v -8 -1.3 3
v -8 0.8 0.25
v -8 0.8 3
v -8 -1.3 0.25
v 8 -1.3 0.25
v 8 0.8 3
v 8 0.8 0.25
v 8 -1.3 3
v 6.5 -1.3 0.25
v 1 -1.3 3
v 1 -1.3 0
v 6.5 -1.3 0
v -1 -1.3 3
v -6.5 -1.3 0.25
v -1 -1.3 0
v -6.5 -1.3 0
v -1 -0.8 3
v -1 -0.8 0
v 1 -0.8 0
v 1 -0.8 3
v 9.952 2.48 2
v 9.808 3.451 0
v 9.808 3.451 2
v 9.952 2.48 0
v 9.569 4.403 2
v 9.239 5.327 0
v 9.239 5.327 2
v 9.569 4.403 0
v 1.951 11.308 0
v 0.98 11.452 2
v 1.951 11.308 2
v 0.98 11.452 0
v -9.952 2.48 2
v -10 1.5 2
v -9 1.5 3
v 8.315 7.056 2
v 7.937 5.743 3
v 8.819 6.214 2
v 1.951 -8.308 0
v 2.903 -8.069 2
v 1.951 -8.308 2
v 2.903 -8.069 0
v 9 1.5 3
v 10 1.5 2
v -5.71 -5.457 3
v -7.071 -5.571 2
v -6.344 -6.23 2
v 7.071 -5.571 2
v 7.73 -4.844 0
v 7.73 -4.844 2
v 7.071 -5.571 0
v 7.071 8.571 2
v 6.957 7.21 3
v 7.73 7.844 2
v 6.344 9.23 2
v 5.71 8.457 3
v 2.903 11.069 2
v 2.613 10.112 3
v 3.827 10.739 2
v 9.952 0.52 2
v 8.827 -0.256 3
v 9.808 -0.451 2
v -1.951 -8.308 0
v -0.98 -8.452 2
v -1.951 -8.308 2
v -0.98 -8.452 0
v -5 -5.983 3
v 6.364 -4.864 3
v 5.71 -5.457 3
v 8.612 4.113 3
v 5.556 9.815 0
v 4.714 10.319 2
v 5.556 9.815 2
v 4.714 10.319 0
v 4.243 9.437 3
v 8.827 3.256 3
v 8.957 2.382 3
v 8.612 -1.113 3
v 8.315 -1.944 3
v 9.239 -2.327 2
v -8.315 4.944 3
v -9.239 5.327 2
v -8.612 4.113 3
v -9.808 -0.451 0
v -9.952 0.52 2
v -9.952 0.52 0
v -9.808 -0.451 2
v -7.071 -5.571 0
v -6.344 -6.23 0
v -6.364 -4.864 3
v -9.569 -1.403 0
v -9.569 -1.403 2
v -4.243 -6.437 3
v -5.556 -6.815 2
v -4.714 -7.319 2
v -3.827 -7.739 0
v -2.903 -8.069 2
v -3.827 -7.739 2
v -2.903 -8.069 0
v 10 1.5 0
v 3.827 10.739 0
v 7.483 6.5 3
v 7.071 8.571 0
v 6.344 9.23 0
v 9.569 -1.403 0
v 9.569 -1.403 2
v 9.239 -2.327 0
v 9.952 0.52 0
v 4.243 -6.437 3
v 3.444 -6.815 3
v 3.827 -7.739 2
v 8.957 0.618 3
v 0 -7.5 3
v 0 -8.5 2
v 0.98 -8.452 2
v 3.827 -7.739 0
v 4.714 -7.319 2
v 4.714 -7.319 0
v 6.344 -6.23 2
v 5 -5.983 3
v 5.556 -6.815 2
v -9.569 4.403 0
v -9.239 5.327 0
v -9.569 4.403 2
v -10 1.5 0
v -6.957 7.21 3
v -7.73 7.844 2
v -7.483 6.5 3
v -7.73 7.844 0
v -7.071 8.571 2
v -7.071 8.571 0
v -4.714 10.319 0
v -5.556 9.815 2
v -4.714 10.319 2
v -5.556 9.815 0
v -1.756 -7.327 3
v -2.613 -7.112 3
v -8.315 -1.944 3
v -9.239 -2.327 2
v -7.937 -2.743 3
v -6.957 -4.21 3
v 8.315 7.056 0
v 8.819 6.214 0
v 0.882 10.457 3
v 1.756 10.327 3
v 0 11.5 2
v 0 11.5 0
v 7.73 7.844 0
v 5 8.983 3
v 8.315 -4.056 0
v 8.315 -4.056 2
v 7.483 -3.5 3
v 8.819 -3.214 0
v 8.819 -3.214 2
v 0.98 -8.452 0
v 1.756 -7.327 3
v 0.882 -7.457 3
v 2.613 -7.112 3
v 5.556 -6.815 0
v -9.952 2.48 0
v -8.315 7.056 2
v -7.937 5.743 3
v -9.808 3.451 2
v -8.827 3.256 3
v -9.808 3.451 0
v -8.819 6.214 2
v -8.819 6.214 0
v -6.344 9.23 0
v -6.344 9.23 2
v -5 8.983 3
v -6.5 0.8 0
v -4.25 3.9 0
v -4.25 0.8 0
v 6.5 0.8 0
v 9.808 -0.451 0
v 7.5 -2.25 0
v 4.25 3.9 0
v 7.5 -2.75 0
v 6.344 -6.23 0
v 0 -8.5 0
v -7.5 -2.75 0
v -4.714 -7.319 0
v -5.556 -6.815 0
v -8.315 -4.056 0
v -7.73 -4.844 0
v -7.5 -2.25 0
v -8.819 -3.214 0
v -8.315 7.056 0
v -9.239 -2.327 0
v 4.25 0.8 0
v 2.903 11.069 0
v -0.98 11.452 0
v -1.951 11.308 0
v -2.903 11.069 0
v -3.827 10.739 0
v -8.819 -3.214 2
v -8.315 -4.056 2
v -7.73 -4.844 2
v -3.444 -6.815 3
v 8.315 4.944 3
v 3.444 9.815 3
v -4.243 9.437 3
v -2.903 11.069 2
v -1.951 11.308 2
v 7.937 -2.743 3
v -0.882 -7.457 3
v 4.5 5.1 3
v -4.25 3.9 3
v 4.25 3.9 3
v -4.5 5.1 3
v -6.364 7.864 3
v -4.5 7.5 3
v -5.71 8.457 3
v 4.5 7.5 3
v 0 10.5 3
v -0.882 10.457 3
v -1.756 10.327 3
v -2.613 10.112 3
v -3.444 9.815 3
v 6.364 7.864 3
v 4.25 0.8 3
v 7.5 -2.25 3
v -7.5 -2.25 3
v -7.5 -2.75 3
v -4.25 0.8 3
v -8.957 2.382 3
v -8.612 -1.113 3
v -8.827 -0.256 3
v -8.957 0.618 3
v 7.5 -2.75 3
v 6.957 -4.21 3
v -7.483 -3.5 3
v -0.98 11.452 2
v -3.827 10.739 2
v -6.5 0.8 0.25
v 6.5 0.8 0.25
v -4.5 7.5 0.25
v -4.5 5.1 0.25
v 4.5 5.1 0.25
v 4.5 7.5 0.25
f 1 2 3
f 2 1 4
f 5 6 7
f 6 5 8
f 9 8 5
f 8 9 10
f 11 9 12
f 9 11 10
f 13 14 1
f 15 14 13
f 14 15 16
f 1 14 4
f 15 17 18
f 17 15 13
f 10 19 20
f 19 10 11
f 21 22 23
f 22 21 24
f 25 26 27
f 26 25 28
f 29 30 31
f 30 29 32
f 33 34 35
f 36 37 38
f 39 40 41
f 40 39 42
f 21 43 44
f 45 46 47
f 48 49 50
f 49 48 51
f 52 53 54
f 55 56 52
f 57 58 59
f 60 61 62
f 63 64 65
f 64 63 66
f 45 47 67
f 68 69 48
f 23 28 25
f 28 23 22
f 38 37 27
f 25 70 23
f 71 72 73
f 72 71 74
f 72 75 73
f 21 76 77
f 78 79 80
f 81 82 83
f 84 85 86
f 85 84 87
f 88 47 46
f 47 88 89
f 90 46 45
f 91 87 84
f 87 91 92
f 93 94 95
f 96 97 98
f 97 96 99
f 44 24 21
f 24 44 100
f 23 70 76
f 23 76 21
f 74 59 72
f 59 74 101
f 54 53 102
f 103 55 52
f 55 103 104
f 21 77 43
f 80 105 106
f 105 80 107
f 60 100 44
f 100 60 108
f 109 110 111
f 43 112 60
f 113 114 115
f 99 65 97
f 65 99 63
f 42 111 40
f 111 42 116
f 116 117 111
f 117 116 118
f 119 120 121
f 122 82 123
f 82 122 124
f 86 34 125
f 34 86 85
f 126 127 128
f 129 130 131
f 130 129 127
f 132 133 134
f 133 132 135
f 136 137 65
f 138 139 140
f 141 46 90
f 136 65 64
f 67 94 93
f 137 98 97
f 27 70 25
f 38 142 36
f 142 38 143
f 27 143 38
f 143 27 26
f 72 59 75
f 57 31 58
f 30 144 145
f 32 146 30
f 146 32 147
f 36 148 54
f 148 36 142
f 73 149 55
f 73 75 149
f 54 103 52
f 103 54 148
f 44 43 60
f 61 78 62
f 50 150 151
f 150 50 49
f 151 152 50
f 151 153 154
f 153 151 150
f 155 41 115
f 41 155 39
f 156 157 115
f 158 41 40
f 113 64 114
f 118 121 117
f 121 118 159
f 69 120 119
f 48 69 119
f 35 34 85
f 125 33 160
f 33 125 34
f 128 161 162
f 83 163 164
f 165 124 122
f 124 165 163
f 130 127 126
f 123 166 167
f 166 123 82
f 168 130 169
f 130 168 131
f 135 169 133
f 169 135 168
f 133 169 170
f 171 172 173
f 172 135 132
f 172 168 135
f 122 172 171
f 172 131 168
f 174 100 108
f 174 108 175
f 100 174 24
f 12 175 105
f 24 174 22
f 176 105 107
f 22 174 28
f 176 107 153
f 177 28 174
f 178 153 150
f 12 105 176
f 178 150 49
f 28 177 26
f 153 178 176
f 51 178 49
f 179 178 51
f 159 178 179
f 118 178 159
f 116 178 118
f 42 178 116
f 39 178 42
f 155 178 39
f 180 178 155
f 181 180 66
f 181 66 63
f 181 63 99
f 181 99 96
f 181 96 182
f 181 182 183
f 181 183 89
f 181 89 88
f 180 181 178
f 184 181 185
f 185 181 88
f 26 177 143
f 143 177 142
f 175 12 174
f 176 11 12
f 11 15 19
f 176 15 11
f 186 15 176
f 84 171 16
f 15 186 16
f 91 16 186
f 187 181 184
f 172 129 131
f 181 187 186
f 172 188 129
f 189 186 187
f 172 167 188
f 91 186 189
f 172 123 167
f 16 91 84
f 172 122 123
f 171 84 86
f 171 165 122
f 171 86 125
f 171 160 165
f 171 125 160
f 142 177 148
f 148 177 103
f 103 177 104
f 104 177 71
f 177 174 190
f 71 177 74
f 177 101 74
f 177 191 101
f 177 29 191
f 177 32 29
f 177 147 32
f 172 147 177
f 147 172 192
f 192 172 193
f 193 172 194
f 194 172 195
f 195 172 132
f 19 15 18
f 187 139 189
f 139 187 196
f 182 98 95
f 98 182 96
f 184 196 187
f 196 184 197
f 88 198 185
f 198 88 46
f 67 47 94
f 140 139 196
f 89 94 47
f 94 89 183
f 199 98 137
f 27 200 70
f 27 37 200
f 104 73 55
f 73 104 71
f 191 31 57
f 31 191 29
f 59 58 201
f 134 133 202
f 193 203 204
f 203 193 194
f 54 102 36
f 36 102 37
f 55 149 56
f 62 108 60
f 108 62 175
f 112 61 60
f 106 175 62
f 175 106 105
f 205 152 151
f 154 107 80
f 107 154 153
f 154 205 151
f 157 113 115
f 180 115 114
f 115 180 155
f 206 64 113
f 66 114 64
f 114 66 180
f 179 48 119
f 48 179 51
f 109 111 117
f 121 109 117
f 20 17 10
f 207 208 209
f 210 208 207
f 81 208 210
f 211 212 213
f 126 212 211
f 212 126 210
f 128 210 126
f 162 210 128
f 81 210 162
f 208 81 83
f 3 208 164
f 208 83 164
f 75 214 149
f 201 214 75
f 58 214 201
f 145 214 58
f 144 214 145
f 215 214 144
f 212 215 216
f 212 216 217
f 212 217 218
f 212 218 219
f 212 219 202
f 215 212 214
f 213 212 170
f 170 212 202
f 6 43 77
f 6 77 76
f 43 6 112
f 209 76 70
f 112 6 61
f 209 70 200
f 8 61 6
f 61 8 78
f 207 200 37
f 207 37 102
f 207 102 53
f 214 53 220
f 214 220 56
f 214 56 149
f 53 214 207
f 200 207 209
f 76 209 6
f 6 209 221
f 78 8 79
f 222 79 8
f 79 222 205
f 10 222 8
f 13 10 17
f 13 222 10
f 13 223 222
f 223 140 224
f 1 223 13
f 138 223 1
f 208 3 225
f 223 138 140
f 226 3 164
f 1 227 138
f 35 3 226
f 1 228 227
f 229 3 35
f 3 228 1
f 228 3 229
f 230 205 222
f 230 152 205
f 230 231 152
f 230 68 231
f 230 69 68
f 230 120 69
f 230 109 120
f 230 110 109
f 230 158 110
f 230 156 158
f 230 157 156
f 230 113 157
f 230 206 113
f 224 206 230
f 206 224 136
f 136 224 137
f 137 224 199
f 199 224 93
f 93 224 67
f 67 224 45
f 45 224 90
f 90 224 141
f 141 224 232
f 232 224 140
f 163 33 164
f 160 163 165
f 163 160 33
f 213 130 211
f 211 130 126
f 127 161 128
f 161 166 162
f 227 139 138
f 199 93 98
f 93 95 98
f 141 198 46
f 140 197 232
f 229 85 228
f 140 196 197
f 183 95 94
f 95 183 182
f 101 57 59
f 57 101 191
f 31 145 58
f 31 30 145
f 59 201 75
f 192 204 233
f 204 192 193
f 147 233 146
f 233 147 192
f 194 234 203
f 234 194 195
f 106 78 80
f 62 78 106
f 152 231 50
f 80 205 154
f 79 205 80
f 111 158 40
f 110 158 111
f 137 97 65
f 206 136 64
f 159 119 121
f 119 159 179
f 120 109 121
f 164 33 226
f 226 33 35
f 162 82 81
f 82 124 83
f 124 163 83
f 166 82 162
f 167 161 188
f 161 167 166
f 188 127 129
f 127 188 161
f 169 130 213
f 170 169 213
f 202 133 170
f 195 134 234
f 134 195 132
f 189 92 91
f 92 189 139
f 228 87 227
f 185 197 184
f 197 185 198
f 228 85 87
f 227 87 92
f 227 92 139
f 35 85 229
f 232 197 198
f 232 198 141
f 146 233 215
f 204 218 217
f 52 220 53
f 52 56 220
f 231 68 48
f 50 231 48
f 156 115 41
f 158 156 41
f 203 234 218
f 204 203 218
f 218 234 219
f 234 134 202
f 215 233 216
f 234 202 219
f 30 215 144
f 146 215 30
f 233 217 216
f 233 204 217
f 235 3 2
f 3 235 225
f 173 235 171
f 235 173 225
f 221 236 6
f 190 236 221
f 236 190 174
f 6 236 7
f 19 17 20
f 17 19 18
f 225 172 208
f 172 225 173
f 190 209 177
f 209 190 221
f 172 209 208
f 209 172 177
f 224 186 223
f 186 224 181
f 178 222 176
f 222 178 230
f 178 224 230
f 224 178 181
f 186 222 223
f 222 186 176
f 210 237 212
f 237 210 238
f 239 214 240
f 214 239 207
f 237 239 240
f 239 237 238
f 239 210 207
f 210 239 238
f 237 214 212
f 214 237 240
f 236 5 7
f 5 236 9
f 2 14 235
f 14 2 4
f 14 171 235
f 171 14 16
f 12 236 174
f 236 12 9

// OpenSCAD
$usbh = 4.7;
$pcbt = 1.6;
difference() {
    translate([0,1.5,0]) hull() {
        cylinder(r=10,h=2,$fn=64);
        cylinder(r=9,h=3,$fn=64);
    }
    //translate([0,0,10/2+0.25])cube([16,$pcbt,10],center=true);
    cube([16,$pcbt,20],center=true);
    #translate([0,$usbh/2-$pcbt/2])cube([8.5,$usbh,20],center=true);
    translate([0,-0.5,0]) difference() {
        cube([16,$pcbt,20],center=true);
        cube([2,2,20],center=true);
    }
    
    // Flex split
    translate([0,-2.5,0]) cube([15,0.5,20],center=true);
    
    // Battery Case Stand Cutout
    translate([0,$pcbt/2+5.5,20/2+0.25]) cube([9,2.4,20],center=true);
}

translate([0,0,0.25/2]) difference() {
    cube([16,3,0.25],center=true);
    cube([13,3,5],center=true);
}
